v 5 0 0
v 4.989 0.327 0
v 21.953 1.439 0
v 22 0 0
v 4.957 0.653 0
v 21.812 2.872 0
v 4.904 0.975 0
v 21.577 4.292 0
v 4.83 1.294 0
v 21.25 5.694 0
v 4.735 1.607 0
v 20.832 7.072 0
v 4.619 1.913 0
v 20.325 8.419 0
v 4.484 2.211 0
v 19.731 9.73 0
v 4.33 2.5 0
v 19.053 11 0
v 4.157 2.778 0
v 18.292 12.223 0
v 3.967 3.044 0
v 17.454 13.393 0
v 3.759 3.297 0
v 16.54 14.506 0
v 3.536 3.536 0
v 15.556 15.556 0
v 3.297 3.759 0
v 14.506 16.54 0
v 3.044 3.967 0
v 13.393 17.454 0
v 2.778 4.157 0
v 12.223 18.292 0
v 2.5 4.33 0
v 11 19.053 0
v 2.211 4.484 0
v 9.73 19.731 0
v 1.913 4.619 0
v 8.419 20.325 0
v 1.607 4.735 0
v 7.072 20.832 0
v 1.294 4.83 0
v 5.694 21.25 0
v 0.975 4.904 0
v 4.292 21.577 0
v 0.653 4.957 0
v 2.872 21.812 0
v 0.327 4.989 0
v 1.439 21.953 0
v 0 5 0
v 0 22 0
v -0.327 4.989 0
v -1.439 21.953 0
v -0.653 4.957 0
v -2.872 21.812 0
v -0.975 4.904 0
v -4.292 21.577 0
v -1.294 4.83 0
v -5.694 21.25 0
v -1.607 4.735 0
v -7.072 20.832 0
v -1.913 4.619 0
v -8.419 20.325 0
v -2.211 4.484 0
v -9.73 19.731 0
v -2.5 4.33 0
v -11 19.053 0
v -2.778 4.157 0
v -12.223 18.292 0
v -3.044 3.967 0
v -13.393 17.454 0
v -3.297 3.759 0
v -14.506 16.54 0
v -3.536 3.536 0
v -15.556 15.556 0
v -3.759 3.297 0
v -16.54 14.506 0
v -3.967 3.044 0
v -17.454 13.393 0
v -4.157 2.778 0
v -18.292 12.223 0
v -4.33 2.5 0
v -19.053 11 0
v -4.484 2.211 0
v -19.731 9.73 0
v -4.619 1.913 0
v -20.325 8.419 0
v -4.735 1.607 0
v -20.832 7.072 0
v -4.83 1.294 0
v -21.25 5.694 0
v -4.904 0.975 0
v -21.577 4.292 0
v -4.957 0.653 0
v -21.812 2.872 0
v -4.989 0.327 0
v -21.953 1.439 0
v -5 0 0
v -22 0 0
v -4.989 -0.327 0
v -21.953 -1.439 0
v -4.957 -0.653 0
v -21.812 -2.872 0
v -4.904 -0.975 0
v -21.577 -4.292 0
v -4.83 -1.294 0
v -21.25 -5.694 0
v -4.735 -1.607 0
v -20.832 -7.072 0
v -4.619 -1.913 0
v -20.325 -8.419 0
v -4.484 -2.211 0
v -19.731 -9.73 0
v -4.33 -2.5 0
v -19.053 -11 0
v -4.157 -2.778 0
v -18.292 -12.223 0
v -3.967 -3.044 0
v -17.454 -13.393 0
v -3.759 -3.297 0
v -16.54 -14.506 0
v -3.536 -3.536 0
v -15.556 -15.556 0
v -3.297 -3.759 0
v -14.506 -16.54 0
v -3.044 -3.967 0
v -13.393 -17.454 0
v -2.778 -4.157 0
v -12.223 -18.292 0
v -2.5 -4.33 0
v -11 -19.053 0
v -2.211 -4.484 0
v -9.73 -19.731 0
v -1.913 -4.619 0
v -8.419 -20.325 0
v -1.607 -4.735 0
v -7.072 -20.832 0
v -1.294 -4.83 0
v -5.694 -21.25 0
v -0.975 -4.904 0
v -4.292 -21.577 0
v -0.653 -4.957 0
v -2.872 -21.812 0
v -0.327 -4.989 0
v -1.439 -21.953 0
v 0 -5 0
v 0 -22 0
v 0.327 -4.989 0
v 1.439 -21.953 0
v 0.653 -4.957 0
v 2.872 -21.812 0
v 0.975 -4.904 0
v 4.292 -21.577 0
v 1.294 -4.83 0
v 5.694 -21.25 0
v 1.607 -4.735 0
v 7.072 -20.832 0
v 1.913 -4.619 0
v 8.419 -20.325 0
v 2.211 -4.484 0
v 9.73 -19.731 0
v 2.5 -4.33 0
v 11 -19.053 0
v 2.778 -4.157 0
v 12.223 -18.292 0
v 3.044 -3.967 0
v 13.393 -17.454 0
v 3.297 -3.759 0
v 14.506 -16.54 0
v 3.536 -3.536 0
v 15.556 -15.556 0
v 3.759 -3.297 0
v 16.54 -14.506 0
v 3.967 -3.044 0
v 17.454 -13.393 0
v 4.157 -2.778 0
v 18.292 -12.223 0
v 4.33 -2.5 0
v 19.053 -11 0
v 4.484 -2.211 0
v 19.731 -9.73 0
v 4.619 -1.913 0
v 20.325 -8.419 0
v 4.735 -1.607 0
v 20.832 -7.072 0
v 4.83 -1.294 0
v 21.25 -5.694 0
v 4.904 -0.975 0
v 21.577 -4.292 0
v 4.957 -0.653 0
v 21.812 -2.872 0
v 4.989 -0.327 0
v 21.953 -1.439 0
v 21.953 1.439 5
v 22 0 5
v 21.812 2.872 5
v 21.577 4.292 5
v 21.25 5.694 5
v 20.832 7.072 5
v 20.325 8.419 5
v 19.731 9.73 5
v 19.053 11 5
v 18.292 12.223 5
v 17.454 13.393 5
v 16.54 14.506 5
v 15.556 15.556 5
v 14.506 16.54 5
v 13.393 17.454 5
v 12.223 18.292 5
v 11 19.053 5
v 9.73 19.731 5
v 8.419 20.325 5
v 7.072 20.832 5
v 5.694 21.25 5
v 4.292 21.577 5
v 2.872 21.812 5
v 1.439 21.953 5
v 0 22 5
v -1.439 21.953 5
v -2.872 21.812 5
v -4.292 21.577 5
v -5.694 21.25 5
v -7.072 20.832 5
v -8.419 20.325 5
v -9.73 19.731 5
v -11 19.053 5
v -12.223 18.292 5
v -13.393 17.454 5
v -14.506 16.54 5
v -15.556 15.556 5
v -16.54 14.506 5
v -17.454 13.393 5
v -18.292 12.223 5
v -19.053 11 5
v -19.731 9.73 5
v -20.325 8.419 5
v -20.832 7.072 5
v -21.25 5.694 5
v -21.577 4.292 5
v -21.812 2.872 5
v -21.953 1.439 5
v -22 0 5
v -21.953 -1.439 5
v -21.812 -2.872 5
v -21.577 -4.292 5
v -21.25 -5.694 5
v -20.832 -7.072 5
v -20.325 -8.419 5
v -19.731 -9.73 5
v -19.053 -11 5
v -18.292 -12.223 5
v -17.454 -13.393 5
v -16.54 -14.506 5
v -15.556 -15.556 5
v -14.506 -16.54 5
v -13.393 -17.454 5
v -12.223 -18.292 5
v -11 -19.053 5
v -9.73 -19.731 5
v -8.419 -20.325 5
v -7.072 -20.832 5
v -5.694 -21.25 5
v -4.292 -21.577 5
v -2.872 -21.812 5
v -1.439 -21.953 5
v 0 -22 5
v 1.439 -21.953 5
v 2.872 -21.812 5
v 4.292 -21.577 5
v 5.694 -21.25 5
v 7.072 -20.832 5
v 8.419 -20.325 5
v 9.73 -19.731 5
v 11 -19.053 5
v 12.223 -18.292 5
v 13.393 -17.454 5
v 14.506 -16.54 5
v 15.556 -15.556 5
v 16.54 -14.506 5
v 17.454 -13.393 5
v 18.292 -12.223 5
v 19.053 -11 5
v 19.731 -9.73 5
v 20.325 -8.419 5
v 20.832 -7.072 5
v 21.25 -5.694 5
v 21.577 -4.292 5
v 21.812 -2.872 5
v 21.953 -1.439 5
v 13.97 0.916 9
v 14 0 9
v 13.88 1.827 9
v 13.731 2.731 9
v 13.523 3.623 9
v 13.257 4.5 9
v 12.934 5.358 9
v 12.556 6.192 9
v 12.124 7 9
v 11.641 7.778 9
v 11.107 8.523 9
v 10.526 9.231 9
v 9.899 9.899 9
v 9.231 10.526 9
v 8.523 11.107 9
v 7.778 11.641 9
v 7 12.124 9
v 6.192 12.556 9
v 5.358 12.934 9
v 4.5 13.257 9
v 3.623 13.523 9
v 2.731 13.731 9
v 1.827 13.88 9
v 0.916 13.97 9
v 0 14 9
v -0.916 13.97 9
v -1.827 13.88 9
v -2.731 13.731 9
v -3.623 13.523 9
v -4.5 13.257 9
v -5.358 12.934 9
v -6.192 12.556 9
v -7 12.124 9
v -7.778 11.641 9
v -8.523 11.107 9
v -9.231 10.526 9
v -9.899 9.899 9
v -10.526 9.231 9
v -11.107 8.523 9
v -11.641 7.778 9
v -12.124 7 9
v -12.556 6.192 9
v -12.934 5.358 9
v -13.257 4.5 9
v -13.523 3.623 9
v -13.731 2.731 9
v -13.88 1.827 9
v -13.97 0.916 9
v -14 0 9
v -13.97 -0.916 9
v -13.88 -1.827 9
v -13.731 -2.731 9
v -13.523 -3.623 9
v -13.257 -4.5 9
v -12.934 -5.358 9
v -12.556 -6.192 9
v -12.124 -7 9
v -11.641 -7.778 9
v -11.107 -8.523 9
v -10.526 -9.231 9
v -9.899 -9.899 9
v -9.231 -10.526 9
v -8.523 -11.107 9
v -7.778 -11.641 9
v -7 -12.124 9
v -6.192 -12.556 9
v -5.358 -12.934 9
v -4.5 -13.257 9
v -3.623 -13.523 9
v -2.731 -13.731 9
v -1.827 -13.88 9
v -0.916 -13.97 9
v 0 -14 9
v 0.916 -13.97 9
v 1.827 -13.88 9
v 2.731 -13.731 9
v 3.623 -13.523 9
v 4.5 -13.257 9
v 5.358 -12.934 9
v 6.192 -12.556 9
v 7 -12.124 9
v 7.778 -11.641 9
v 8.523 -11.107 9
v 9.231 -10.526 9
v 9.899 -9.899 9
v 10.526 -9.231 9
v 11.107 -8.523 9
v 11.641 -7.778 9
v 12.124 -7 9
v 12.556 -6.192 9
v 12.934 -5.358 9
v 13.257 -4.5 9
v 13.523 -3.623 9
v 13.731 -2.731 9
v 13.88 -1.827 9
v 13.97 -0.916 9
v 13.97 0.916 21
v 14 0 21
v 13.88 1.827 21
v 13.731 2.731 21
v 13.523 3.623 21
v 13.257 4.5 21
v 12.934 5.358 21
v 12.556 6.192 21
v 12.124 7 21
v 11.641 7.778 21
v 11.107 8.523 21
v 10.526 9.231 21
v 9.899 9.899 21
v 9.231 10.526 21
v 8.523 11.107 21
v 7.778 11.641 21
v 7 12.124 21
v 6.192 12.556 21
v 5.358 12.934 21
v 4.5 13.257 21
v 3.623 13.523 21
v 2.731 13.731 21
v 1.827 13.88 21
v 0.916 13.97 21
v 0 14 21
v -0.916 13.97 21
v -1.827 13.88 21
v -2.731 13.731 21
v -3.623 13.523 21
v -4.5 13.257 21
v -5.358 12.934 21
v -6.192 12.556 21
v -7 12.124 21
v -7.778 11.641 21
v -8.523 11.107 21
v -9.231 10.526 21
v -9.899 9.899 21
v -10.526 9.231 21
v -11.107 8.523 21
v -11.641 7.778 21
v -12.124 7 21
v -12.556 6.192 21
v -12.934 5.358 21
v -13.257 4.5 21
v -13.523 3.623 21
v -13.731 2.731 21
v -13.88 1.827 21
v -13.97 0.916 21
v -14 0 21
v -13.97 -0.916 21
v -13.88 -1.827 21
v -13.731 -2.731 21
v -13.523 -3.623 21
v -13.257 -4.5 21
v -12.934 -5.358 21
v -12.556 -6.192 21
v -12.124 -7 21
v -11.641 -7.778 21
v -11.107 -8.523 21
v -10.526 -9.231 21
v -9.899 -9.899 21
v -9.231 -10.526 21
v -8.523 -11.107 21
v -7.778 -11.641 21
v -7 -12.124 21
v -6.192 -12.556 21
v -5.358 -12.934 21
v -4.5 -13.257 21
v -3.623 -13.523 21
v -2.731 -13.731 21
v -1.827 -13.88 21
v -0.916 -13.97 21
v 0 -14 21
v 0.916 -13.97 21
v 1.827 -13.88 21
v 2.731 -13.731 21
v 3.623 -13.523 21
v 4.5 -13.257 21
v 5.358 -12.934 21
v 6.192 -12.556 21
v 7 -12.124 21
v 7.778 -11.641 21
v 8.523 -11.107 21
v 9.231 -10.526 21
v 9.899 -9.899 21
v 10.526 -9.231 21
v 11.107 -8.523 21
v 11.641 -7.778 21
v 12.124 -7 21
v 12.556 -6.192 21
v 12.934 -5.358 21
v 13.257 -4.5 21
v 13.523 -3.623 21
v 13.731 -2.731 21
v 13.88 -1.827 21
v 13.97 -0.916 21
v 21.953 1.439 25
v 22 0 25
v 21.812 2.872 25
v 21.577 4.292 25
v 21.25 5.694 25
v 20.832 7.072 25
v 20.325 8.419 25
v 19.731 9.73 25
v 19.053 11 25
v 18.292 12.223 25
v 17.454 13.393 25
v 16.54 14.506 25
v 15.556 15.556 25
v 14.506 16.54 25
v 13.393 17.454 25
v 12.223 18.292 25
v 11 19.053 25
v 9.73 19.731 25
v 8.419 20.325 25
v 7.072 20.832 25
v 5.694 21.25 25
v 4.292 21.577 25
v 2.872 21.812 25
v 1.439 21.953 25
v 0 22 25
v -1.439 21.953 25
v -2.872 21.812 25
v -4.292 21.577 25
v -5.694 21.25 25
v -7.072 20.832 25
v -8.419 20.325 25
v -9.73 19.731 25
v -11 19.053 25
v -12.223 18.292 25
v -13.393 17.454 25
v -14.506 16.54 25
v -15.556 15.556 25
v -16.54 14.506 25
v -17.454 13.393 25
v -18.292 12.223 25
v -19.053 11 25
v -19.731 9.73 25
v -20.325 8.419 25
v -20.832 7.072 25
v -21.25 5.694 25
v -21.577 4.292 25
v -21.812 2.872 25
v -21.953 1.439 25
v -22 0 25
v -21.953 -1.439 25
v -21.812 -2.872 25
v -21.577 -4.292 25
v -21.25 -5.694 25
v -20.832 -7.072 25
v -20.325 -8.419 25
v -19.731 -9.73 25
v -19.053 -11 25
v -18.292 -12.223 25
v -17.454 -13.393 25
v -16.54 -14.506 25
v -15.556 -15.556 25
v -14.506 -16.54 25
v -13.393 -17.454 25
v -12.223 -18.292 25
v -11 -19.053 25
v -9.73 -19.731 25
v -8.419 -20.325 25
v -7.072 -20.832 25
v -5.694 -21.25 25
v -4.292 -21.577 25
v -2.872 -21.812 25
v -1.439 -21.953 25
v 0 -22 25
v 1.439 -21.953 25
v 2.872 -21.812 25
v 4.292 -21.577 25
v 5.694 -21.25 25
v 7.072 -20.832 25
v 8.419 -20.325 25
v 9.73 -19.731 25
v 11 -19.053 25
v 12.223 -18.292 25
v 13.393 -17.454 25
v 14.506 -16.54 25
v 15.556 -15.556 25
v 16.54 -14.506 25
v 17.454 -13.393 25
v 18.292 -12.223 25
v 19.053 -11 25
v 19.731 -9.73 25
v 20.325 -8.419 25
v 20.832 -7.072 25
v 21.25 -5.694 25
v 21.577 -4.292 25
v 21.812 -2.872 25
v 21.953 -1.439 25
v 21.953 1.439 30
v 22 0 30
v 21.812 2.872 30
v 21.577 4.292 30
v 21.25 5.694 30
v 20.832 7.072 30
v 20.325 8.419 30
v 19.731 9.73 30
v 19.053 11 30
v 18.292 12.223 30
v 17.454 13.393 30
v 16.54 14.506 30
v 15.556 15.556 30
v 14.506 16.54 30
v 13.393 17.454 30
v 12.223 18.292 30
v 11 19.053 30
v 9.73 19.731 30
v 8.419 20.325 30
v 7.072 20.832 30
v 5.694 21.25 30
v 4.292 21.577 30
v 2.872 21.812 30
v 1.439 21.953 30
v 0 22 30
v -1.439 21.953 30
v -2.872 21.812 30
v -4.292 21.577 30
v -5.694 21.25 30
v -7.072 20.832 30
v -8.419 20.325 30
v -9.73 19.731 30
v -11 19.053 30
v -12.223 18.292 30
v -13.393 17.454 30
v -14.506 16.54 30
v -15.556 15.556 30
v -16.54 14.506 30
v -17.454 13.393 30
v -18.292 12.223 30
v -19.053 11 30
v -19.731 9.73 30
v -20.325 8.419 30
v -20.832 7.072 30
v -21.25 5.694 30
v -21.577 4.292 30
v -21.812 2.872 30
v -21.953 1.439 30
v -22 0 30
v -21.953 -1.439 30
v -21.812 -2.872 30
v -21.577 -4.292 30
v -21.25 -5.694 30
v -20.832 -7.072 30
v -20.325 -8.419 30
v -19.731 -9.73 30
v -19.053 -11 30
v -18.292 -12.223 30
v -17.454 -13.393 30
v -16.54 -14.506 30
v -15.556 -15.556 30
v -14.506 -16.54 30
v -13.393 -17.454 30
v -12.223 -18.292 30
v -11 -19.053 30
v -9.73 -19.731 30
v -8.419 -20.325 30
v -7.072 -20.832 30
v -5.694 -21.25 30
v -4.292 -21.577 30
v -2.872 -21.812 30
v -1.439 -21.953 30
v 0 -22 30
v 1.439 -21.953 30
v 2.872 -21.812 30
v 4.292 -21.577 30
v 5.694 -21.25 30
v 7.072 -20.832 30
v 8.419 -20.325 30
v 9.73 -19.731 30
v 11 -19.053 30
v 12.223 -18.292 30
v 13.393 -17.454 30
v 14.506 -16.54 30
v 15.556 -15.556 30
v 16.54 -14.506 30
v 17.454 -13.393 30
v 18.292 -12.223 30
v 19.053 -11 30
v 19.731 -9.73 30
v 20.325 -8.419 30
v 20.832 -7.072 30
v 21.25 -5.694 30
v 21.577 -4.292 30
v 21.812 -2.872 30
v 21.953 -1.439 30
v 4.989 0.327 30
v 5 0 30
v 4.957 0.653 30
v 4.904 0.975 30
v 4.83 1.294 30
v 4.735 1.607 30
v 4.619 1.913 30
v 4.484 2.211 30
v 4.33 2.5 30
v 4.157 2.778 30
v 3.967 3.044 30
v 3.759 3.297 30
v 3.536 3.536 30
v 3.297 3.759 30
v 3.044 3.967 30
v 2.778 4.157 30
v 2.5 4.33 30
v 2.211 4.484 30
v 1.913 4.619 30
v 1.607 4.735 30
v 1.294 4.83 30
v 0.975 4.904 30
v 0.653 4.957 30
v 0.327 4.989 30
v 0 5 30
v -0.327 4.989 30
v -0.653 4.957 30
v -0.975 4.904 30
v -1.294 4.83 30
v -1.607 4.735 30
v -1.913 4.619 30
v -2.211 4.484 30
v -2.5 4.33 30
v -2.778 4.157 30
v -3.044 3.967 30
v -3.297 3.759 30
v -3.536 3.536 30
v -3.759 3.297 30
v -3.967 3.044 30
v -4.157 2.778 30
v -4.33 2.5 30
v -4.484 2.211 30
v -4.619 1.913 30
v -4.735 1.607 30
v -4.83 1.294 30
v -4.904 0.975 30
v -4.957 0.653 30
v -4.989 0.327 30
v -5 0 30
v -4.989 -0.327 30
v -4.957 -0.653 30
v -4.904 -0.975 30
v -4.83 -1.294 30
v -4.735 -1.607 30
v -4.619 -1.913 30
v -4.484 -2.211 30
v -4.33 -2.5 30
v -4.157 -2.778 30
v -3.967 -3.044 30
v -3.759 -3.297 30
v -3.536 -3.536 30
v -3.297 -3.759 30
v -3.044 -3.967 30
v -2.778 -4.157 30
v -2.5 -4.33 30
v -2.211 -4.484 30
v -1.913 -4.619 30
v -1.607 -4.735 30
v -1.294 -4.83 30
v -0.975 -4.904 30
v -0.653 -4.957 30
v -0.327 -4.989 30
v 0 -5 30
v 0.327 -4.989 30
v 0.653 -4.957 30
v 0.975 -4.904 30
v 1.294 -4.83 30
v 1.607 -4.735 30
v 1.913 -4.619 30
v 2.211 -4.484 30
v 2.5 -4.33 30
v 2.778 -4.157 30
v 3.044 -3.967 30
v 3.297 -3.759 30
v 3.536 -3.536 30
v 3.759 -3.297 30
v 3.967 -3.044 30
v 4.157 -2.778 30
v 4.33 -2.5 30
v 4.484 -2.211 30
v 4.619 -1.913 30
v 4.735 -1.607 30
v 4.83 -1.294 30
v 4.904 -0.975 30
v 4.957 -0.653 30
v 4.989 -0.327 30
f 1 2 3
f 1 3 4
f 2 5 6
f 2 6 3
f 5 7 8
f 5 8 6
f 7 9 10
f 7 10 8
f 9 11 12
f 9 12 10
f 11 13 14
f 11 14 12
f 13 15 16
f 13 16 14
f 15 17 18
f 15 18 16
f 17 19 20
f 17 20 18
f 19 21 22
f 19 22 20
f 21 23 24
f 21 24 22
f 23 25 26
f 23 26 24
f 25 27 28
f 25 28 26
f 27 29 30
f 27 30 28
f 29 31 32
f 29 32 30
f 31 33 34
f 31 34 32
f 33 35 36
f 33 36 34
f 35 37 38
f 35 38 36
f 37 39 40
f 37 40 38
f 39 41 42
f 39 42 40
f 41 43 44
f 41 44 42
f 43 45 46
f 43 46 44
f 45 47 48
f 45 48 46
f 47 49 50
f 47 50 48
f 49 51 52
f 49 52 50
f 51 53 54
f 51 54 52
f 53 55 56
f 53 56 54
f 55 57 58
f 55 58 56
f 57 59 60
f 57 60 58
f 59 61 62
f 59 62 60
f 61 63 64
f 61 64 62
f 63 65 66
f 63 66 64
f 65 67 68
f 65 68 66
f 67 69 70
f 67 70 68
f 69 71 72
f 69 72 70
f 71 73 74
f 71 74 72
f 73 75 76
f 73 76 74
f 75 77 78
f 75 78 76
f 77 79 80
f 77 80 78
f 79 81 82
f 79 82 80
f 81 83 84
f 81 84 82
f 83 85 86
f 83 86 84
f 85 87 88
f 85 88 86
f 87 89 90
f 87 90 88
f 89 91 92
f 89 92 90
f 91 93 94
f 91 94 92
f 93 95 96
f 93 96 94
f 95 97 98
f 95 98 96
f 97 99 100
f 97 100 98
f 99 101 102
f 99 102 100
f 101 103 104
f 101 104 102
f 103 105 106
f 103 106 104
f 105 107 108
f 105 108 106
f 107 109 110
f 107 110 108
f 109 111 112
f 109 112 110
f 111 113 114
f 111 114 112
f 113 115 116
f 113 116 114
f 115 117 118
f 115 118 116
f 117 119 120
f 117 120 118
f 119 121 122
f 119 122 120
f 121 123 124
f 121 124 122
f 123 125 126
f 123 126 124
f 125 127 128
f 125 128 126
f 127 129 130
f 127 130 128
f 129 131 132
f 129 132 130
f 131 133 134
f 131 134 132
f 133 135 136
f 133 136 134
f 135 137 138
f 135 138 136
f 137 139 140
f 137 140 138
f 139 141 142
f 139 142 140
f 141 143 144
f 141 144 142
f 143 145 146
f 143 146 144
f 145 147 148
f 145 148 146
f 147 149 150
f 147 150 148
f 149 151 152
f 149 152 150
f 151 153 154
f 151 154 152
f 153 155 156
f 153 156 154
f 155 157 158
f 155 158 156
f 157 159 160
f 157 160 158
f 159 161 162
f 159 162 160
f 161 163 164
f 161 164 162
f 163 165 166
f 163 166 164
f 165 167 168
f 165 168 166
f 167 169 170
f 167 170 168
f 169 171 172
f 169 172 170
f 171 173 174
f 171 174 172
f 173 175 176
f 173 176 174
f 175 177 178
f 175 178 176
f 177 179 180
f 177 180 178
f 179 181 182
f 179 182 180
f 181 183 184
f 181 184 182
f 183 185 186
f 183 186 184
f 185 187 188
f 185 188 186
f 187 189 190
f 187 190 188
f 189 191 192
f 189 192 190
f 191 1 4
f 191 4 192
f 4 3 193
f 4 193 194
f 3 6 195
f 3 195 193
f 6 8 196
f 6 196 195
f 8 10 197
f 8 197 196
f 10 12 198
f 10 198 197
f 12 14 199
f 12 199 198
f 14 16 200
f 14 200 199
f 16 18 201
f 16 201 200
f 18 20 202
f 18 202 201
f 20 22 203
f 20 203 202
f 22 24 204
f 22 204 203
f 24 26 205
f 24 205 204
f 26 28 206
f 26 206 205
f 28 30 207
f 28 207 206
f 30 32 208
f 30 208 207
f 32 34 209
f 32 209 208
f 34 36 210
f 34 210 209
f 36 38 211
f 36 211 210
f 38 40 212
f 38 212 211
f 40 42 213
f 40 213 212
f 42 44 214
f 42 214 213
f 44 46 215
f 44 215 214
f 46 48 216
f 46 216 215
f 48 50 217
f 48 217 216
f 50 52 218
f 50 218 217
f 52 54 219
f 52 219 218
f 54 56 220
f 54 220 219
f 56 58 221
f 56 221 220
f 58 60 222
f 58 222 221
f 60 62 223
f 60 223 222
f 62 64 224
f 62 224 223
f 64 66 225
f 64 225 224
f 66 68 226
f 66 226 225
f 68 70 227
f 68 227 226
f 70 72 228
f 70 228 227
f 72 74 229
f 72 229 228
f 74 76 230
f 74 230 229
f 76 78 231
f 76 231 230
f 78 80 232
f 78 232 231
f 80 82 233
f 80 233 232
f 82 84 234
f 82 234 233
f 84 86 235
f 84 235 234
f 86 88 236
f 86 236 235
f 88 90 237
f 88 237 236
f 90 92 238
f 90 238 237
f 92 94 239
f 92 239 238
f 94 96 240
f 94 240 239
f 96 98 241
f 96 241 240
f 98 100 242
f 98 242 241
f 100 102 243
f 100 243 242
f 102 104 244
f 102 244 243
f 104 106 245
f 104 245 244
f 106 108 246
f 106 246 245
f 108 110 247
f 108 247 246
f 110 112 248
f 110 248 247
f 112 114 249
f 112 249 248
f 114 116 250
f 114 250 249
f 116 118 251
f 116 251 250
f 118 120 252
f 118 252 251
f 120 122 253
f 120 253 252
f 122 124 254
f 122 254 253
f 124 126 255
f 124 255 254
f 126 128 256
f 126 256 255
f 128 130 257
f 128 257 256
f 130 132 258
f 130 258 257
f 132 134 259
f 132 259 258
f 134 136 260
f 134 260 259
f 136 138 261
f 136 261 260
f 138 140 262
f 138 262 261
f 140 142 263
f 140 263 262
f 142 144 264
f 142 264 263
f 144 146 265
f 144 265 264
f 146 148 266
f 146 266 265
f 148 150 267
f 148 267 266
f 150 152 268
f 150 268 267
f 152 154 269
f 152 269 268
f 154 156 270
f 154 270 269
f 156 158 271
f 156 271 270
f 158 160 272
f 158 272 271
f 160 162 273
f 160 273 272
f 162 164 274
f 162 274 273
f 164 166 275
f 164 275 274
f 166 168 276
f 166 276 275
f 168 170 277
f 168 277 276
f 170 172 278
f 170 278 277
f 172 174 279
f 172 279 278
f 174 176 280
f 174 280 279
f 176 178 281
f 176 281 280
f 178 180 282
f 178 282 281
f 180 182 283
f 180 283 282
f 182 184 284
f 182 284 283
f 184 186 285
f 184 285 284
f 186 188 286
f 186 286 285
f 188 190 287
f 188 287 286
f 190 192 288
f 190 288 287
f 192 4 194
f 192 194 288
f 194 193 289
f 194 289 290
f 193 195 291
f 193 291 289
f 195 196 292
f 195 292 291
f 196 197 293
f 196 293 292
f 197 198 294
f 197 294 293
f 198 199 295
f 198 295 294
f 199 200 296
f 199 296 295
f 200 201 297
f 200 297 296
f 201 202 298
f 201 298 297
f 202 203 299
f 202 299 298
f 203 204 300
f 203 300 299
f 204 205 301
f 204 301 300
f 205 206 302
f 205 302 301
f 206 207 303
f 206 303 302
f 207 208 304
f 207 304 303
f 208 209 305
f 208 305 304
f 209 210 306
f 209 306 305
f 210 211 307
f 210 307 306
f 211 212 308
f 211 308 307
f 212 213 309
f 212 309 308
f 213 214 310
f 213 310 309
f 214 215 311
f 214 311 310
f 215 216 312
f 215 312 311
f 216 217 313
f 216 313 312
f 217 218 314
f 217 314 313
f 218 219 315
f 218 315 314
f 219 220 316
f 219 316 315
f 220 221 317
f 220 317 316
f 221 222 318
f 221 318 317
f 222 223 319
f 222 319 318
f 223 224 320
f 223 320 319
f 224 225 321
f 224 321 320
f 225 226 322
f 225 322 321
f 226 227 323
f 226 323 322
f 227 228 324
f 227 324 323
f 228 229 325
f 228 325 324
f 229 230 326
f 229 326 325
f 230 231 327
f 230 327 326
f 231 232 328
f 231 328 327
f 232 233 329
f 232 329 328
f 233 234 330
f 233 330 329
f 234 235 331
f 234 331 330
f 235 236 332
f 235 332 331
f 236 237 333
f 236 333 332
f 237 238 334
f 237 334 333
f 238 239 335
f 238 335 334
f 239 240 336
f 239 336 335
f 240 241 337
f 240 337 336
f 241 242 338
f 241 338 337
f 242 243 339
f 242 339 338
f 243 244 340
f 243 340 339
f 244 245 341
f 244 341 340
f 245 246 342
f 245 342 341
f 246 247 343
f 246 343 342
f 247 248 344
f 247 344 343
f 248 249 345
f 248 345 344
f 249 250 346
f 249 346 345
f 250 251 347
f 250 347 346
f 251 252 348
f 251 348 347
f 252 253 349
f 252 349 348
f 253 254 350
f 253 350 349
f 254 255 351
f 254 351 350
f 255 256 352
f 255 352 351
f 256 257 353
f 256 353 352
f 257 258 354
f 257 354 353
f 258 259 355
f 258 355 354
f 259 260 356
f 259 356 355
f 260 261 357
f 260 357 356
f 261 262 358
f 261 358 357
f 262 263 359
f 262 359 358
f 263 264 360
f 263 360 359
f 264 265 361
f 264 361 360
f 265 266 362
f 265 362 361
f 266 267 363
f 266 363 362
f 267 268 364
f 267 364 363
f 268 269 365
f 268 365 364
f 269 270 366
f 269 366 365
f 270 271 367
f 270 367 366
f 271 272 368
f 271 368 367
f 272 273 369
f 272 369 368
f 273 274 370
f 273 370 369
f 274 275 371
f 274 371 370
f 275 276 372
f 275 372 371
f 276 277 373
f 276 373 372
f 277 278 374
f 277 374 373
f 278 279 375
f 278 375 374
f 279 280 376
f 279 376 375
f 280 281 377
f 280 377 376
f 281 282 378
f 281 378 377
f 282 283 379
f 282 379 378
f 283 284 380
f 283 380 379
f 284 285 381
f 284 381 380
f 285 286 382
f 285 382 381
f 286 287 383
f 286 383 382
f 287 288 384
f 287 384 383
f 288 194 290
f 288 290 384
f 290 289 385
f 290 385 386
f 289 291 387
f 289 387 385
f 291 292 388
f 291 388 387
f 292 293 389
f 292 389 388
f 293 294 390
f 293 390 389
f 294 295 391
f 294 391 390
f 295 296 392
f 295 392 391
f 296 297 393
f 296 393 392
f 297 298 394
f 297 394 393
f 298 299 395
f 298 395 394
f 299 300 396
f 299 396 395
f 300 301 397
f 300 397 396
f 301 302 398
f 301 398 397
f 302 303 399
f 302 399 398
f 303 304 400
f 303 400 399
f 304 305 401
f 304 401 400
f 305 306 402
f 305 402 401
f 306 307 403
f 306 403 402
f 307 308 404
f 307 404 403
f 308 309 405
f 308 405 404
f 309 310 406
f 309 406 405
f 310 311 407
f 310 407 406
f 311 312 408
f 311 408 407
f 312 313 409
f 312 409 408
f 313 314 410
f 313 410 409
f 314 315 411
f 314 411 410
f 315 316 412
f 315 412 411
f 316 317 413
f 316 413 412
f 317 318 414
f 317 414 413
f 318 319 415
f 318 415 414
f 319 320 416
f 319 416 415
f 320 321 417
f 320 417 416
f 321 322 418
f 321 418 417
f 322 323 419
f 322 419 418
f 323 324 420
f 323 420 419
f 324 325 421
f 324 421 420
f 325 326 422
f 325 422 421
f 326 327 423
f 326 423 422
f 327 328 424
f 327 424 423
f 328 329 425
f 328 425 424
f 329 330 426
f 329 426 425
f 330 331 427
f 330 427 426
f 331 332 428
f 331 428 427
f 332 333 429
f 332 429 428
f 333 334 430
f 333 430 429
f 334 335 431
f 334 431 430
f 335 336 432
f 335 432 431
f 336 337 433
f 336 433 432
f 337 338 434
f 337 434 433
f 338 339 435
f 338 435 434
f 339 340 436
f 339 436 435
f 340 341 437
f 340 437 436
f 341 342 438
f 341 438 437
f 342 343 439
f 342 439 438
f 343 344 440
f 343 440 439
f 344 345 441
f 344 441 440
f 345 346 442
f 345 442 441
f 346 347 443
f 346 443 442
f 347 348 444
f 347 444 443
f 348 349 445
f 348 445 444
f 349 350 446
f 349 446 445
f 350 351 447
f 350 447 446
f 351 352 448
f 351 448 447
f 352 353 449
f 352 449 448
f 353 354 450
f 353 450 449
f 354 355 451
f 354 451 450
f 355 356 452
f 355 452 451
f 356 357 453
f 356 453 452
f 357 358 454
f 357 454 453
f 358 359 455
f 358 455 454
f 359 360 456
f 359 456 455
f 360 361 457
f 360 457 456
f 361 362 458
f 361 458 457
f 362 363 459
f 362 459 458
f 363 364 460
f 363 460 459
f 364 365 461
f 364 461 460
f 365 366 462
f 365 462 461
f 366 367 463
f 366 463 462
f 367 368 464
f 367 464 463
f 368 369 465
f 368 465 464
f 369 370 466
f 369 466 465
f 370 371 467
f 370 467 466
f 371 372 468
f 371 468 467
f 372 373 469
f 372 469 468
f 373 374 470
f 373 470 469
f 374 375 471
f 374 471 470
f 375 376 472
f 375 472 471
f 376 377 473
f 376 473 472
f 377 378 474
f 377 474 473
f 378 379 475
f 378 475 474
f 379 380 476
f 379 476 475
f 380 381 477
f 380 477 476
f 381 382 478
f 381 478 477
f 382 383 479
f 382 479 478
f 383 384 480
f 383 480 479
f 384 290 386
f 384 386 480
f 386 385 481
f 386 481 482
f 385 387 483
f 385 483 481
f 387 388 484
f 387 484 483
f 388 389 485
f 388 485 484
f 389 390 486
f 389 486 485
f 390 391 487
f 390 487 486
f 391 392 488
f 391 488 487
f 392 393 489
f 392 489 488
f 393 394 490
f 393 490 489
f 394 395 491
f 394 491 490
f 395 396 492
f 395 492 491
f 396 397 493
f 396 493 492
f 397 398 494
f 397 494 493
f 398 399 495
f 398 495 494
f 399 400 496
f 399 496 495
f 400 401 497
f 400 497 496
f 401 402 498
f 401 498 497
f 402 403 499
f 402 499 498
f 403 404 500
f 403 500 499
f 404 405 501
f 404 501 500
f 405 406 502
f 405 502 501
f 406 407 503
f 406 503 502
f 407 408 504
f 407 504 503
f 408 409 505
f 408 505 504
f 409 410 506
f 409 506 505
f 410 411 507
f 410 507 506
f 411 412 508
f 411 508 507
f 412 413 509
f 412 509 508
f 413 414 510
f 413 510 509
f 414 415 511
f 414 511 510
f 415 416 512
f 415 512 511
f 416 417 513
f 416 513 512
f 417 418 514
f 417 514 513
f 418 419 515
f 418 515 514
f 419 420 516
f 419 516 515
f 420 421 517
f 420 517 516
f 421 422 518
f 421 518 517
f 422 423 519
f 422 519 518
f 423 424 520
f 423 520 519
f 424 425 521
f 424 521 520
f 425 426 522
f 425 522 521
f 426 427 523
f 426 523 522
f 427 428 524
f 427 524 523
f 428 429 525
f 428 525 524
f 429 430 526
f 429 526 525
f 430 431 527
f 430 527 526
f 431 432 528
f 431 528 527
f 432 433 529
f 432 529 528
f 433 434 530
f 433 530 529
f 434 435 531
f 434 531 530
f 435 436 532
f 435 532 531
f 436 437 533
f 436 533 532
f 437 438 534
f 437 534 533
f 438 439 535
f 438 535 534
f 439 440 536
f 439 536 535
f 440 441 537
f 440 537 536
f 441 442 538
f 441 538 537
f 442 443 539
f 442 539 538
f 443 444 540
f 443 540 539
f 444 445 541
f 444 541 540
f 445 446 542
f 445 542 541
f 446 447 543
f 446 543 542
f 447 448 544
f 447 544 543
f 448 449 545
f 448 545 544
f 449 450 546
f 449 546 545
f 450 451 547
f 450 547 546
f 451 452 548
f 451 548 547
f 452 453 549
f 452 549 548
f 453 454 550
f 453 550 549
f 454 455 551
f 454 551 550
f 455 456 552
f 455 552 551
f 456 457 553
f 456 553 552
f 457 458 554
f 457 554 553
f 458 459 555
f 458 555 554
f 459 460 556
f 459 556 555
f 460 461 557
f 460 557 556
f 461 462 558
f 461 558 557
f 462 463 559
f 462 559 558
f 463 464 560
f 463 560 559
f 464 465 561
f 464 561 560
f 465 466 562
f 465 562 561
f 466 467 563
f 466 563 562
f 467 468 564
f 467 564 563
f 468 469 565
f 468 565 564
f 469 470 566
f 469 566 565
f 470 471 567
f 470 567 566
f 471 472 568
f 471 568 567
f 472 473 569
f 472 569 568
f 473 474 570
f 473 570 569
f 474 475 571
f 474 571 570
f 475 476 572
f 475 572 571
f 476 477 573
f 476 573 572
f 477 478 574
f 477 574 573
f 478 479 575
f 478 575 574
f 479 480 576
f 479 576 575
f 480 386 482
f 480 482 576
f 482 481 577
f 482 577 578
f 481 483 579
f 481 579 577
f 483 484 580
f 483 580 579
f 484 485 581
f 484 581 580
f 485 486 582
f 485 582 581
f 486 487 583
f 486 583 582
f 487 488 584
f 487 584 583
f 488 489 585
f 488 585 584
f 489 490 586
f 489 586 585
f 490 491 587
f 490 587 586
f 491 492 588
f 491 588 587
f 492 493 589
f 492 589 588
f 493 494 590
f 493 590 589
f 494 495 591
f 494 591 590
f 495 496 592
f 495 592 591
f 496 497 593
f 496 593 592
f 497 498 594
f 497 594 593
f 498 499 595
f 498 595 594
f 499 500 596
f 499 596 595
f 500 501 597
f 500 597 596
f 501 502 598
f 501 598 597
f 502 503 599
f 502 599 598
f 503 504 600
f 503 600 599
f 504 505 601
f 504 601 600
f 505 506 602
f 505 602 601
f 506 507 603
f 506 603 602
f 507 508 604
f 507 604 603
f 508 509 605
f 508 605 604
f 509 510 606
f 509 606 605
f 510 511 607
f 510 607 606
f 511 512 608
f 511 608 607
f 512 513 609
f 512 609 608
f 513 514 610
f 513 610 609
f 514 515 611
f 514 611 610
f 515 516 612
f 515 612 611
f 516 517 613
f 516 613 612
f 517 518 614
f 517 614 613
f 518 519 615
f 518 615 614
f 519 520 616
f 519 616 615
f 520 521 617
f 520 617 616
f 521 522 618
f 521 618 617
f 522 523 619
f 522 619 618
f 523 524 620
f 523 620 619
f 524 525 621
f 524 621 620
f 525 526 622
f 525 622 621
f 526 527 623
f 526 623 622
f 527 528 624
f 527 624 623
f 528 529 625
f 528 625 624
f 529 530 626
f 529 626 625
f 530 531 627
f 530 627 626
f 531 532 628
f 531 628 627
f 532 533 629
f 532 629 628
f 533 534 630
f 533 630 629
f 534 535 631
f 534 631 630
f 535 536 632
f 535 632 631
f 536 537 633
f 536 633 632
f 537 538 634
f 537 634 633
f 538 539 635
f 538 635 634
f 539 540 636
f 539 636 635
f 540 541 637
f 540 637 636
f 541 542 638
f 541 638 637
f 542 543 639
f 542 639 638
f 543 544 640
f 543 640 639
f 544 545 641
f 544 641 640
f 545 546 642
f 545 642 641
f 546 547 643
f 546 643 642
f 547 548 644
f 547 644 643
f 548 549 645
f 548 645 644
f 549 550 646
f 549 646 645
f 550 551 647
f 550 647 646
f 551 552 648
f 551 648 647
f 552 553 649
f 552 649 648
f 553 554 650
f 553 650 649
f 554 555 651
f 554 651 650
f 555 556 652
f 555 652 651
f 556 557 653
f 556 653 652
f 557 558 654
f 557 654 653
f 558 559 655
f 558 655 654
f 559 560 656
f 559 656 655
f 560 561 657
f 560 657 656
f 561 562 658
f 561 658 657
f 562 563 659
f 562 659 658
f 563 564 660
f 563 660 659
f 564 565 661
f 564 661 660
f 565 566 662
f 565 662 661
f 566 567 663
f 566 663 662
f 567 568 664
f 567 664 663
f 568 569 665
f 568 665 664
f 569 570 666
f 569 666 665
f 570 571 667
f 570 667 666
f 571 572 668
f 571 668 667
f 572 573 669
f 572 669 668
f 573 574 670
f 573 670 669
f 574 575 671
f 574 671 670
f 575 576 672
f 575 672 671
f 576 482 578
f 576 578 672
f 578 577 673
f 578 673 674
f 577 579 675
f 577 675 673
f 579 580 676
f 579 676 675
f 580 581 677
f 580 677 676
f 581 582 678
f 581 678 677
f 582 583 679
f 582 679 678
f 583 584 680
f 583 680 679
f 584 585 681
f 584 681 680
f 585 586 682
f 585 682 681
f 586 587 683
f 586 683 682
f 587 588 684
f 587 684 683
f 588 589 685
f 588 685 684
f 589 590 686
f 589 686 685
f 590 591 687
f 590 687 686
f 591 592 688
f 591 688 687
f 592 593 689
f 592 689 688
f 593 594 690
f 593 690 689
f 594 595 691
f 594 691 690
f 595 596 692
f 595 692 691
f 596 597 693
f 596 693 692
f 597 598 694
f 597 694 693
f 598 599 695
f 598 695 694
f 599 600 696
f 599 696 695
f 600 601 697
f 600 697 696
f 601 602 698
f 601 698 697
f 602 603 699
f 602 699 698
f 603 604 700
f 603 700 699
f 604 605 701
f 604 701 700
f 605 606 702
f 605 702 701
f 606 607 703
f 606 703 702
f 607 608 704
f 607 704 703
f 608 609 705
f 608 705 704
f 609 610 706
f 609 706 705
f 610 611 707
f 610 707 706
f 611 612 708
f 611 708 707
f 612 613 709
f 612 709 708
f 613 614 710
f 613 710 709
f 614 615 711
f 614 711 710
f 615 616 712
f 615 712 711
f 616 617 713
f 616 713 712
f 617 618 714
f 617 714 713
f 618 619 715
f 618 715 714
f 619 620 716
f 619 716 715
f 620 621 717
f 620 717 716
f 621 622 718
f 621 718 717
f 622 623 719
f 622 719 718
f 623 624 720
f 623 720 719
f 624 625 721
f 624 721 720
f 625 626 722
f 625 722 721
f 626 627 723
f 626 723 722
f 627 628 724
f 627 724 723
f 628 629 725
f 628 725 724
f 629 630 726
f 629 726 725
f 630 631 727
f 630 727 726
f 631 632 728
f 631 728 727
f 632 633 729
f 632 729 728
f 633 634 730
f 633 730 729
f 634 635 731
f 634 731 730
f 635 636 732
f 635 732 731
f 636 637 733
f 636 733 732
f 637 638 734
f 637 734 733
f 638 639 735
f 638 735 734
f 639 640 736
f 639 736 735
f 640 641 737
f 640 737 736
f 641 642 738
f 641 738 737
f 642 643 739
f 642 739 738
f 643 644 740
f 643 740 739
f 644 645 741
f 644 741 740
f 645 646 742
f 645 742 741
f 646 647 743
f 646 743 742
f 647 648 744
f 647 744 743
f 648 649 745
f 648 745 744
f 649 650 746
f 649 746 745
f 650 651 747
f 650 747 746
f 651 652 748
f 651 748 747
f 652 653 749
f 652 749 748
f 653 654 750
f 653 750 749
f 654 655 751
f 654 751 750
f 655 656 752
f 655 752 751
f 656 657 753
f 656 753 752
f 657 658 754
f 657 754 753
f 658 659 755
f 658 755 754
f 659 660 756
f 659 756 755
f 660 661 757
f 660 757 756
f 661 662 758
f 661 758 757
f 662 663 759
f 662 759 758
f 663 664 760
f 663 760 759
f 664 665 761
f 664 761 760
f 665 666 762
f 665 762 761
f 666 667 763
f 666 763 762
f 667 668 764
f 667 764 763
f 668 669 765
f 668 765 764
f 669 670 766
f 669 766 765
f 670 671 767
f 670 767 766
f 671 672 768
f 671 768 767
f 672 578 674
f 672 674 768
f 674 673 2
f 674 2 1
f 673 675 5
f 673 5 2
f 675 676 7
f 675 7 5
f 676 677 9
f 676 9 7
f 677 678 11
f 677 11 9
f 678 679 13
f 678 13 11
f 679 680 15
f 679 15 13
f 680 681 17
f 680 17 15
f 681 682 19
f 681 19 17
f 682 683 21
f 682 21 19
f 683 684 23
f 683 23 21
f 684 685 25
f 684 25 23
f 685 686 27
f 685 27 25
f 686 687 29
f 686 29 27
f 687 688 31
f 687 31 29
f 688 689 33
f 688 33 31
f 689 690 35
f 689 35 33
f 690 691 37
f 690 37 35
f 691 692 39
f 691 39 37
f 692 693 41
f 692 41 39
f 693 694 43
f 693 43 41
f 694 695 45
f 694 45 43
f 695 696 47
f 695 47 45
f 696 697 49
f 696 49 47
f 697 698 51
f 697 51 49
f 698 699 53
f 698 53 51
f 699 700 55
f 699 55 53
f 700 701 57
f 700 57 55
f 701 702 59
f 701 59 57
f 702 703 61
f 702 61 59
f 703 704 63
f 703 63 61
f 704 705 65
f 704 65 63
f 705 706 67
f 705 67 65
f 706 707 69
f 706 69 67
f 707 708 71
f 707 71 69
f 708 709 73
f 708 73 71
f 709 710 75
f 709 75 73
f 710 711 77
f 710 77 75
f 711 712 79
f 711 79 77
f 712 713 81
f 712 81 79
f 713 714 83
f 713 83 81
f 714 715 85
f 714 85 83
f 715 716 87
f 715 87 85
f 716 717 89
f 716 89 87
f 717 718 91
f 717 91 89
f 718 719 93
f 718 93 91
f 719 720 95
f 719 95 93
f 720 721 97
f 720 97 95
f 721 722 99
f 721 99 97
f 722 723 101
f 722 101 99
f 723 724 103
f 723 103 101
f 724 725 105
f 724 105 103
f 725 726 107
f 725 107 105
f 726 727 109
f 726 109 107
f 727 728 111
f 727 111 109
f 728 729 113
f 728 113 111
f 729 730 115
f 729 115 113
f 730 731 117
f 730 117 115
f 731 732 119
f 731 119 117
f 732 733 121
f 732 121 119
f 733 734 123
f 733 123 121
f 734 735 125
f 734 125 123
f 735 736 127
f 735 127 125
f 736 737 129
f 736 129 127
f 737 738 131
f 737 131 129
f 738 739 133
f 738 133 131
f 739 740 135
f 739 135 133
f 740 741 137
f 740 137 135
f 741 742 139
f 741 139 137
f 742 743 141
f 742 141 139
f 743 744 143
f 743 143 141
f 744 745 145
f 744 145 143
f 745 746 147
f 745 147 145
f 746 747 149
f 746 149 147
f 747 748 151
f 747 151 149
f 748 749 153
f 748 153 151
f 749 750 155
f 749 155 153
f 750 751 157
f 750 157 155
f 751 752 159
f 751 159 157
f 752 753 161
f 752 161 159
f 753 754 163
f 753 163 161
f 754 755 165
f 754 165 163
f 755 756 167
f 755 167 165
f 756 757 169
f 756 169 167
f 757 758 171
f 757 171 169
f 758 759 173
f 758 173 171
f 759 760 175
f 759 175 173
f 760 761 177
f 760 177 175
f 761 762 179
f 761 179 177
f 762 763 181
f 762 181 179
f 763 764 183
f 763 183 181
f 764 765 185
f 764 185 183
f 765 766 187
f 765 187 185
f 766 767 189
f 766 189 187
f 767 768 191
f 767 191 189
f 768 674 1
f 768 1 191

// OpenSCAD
// Original MechIntel educational model. CC0-1.0. Units: mm.
// Not a standardized or load-rated component.
$fn=96;
// Section points: [radius, height], mm. Edit to change the profile.
section=[[5, 0], [22, 0], [22, 5], [14, 9], [14, 21], [22, 25], [22, 30], [5, 30]];
rotate_extrude($fn=96) polygon(points=section);
